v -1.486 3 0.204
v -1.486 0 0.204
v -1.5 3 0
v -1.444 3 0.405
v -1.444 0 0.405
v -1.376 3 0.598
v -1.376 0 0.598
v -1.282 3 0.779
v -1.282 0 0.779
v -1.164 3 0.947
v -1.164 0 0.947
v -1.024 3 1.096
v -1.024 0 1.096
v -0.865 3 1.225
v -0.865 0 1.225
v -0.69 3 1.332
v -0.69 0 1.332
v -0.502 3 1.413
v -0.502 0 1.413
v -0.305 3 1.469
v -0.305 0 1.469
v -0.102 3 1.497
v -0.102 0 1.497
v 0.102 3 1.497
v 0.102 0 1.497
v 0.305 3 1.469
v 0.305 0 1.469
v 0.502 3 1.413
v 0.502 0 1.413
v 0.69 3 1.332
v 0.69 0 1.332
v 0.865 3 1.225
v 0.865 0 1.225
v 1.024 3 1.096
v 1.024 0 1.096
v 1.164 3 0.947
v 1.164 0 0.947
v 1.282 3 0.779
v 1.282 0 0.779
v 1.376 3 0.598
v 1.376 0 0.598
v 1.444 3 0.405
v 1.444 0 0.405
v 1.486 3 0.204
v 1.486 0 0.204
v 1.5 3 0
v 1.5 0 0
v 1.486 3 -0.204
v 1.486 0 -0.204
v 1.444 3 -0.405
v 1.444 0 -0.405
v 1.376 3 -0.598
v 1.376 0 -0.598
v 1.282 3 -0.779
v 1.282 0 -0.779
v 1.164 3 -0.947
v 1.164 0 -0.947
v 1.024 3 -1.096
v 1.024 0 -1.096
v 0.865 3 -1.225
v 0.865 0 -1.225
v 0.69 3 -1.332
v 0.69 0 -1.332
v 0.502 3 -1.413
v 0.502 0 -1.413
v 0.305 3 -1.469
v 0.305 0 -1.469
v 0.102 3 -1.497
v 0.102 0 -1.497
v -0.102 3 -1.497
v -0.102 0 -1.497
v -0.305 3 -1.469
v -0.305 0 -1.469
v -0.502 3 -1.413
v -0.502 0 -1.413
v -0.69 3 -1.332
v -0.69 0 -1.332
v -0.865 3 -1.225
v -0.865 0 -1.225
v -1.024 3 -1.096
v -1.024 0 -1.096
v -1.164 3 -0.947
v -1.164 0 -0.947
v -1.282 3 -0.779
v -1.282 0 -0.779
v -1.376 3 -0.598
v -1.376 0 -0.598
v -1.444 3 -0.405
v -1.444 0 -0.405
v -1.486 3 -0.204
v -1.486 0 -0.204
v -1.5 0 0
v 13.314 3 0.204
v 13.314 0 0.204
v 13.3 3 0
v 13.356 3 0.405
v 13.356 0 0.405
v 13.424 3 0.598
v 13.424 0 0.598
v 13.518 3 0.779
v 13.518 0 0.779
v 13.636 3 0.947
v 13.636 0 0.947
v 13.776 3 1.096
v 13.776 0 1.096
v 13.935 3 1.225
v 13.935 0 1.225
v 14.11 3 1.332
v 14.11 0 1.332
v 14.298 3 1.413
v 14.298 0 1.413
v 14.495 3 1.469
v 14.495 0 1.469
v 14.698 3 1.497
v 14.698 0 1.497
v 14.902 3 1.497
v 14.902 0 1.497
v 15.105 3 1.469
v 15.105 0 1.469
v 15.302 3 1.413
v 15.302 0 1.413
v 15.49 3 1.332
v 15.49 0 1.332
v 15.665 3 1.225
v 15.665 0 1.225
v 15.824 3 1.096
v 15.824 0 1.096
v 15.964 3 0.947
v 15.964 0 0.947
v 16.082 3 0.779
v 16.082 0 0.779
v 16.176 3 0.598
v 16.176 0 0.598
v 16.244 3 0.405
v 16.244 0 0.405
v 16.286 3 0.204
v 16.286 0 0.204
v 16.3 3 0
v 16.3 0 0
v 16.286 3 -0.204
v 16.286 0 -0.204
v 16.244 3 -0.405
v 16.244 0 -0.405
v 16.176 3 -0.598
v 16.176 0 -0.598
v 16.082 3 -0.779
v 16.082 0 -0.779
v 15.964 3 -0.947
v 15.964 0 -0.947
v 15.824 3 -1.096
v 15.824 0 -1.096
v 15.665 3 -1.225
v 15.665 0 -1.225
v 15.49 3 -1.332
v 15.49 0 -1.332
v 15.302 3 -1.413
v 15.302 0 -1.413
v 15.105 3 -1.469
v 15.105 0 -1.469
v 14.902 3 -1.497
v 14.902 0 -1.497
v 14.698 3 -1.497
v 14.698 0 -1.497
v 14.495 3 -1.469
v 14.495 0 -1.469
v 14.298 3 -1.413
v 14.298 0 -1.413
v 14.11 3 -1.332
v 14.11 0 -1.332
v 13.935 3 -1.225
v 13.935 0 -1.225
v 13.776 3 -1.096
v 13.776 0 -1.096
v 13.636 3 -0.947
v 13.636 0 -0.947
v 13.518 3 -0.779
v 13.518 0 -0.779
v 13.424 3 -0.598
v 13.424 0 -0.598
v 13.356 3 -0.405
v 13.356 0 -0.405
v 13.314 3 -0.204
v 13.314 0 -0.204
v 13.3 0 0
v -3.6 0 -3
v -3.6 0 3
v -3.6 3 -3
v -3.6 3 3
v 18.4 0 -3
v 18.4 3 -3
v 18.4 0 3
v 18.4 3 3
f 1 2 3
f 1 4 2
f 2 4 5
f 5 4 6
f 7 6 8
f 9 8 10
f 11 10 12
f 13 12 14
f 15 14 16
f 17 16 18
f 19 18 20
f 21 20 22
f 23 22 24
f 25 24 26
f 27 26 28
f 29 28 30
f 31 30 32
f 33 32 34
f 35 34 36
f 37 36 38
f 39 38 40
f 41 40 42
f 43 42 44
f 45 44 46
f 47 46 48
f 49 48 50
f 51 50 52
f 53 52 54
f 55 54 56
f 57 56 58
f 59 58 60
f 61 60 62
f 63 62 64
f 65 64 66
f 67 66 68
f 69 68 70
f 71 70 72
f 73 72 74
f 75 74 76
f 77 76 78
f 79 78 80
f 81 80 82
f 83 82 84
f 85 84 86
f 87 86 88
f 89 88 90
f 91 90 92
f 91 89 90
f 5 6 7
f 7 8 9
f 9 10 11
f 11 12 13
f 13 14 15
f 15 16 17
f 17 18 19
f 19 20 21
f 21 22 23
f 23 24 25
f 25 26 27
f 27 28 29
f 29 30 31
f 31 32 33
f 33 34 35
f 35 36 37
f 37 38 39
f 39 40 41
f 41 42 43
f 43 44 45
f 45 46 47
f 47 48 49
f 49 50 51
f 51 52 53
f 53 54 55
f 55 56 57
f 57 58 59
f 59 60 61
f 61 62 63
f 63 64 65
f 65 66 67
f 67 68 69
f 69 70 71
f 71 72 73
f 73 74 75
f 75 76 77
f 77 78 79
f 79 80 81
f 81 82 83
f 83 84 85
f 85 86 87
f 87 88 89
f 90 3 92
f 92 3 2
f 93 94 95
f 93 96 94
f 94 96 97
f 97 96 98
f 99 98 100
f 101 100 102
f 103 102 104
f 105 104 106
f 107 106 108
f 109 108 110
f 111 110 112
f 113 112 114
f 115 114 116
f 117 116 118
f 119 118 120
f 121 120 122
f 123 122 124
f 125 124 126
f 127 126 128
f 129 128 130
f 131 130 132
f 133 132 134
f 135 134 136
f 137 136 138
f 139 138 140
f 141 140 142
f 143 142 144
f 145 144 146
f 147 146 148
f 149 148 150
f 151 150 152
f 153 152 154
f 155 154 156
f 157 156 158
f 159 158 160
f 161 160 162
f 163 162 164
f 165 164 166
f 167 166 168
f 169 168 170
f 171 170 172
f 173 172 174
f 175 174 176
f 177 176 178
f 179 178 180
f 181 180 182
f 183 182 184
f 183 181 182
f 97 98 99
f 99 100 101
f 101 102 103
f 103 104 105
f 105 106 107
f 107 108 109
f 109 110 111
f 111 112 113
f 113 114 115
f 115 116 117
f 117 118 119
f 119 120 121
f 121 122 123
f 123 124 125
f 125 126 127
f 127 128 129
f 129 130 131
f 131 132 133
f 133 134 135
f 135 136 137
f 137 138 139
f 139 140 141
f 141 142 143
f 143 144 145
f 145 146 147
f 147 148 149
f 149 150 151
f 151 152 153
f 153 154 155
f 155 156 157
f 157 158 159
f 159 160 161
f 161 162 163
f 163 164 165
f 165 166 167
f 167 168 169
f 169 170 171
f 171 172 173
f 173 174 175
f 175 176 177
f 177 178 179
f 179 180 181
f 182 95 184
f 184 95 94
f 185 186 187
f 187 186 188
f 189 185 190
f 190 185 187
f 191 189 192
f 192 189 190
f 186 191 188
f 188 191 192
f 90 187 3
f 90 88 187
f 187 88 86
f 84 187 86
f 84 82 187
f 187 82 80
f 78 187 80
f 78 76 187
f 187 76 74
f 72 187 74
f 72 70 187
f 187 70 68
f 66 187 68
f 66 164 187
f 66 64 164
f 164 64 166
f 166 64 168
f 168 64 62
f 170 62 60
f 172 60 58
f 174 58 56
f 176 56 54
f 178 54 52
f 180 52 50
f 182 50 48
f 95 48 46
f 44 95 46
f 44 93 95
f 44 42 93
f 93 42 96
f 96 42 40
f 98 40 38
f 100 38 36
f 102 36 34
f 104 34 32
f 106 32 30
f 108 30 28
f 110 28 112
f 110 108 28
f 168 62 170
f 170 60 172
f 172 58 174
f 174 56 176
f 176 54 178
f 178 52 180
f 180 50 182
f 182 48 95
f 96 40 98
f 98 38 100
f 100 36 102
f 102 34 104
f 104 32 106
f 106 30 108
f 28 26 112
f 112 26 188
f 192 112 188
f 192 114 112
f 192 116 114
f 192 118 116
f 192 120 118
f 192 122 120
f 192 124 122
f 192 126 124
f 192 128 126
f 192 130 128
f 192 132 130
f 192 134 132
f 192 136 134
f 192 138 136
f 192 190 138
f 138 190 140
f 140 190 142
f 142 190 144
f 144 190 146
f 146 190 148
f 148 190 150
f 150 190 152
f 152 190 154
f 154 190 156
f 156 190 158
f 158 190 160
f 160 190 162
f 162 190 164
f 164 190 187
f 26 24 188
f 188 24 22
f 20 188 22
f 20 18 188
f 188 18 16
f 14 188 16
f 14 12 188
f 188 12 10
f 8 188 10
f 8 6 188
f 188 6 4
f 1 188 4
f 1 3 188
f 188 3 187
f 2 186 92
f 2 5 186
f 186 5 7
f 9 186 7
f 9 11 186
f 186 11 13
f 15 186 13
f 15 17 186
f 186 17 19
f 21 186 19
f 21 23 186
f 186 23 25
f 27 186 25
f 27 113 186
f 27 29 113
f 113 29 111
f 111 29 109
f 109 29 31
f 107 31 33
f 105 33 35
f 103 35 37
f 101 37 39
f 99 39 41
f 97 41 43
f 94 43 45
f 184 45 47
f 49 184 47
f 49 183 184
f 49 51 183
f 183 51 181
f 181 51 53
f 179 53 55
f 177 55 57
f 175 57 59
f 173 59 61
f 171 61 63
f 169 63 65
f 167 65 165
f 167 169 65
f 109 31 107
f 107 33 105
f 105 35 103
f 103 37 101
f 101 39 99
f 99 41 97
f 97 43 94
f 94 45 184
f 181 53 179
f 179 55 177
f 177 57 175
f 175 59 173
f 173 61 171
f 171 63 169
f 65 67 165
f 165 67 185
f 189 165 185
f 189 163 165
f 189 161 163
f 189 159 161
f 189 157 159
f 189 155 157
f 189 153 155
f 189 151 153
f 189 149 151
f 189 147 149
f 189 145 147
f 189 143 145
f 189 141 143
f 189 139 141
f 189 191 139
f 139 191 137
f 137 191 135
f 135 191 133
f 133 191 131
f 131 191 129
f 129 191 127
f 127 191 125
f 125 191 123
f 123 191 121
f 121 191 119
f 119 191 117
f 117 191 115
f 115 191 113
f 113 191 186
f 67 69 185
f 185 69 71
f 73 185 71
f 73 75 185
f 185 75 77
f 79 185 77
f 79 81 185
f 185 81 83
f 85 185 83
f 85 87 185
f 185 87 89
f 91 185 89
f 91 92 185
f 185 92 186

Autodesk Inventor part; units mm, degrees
ref_plane "YZ Plane" through (0, 0, 0) normal (1, 0, 0) x (0, 1, 0)
ref_plane "XZ Plane" through (0, 0, 0) normal (0, 1, 0) x (-1, 0, 0)
ref_plane "XY Plane" through (0, 0, 0) normal (0, 0, 1) x (1, 0, 0)
sketch "スケッチ1" plane through (0, 0, 0) normal (0, 1, 0) x (-1, 0, 0)
  line L0 (0, 0) -> (-14.8, 0)
  circle A0 centre (-14.8, 0) radius 1.5
  circle A1 centre (0, 0) radius 1.5
  line L1 (-18.4, 3) -> (3.6, 3)
  line L2 (3.6, 3) -> (3.6, -3)
  line L3 (3.6, -3) -> (-18.4, -3)
  line L4 (-18.4, -3) -> (-18.4, 3)
  line L5 (-18.4, 3) -> (3.6, -3) construction
  line L6 (3.6, 3) -> (-18.4, -3) construction
  point P0 (-7.4, 0)
  dimension "d0" = 14.8
  dimension "d1" = 3
  dimension "d2" = 3
  dimension "d3" = 22
  dimension "d4" = 6
extrude "押し出し1" add sketch "スケッチ1" along normal blind 3
properties part number "知能ロボコン砲身止め" material "ABS プラスチック"
